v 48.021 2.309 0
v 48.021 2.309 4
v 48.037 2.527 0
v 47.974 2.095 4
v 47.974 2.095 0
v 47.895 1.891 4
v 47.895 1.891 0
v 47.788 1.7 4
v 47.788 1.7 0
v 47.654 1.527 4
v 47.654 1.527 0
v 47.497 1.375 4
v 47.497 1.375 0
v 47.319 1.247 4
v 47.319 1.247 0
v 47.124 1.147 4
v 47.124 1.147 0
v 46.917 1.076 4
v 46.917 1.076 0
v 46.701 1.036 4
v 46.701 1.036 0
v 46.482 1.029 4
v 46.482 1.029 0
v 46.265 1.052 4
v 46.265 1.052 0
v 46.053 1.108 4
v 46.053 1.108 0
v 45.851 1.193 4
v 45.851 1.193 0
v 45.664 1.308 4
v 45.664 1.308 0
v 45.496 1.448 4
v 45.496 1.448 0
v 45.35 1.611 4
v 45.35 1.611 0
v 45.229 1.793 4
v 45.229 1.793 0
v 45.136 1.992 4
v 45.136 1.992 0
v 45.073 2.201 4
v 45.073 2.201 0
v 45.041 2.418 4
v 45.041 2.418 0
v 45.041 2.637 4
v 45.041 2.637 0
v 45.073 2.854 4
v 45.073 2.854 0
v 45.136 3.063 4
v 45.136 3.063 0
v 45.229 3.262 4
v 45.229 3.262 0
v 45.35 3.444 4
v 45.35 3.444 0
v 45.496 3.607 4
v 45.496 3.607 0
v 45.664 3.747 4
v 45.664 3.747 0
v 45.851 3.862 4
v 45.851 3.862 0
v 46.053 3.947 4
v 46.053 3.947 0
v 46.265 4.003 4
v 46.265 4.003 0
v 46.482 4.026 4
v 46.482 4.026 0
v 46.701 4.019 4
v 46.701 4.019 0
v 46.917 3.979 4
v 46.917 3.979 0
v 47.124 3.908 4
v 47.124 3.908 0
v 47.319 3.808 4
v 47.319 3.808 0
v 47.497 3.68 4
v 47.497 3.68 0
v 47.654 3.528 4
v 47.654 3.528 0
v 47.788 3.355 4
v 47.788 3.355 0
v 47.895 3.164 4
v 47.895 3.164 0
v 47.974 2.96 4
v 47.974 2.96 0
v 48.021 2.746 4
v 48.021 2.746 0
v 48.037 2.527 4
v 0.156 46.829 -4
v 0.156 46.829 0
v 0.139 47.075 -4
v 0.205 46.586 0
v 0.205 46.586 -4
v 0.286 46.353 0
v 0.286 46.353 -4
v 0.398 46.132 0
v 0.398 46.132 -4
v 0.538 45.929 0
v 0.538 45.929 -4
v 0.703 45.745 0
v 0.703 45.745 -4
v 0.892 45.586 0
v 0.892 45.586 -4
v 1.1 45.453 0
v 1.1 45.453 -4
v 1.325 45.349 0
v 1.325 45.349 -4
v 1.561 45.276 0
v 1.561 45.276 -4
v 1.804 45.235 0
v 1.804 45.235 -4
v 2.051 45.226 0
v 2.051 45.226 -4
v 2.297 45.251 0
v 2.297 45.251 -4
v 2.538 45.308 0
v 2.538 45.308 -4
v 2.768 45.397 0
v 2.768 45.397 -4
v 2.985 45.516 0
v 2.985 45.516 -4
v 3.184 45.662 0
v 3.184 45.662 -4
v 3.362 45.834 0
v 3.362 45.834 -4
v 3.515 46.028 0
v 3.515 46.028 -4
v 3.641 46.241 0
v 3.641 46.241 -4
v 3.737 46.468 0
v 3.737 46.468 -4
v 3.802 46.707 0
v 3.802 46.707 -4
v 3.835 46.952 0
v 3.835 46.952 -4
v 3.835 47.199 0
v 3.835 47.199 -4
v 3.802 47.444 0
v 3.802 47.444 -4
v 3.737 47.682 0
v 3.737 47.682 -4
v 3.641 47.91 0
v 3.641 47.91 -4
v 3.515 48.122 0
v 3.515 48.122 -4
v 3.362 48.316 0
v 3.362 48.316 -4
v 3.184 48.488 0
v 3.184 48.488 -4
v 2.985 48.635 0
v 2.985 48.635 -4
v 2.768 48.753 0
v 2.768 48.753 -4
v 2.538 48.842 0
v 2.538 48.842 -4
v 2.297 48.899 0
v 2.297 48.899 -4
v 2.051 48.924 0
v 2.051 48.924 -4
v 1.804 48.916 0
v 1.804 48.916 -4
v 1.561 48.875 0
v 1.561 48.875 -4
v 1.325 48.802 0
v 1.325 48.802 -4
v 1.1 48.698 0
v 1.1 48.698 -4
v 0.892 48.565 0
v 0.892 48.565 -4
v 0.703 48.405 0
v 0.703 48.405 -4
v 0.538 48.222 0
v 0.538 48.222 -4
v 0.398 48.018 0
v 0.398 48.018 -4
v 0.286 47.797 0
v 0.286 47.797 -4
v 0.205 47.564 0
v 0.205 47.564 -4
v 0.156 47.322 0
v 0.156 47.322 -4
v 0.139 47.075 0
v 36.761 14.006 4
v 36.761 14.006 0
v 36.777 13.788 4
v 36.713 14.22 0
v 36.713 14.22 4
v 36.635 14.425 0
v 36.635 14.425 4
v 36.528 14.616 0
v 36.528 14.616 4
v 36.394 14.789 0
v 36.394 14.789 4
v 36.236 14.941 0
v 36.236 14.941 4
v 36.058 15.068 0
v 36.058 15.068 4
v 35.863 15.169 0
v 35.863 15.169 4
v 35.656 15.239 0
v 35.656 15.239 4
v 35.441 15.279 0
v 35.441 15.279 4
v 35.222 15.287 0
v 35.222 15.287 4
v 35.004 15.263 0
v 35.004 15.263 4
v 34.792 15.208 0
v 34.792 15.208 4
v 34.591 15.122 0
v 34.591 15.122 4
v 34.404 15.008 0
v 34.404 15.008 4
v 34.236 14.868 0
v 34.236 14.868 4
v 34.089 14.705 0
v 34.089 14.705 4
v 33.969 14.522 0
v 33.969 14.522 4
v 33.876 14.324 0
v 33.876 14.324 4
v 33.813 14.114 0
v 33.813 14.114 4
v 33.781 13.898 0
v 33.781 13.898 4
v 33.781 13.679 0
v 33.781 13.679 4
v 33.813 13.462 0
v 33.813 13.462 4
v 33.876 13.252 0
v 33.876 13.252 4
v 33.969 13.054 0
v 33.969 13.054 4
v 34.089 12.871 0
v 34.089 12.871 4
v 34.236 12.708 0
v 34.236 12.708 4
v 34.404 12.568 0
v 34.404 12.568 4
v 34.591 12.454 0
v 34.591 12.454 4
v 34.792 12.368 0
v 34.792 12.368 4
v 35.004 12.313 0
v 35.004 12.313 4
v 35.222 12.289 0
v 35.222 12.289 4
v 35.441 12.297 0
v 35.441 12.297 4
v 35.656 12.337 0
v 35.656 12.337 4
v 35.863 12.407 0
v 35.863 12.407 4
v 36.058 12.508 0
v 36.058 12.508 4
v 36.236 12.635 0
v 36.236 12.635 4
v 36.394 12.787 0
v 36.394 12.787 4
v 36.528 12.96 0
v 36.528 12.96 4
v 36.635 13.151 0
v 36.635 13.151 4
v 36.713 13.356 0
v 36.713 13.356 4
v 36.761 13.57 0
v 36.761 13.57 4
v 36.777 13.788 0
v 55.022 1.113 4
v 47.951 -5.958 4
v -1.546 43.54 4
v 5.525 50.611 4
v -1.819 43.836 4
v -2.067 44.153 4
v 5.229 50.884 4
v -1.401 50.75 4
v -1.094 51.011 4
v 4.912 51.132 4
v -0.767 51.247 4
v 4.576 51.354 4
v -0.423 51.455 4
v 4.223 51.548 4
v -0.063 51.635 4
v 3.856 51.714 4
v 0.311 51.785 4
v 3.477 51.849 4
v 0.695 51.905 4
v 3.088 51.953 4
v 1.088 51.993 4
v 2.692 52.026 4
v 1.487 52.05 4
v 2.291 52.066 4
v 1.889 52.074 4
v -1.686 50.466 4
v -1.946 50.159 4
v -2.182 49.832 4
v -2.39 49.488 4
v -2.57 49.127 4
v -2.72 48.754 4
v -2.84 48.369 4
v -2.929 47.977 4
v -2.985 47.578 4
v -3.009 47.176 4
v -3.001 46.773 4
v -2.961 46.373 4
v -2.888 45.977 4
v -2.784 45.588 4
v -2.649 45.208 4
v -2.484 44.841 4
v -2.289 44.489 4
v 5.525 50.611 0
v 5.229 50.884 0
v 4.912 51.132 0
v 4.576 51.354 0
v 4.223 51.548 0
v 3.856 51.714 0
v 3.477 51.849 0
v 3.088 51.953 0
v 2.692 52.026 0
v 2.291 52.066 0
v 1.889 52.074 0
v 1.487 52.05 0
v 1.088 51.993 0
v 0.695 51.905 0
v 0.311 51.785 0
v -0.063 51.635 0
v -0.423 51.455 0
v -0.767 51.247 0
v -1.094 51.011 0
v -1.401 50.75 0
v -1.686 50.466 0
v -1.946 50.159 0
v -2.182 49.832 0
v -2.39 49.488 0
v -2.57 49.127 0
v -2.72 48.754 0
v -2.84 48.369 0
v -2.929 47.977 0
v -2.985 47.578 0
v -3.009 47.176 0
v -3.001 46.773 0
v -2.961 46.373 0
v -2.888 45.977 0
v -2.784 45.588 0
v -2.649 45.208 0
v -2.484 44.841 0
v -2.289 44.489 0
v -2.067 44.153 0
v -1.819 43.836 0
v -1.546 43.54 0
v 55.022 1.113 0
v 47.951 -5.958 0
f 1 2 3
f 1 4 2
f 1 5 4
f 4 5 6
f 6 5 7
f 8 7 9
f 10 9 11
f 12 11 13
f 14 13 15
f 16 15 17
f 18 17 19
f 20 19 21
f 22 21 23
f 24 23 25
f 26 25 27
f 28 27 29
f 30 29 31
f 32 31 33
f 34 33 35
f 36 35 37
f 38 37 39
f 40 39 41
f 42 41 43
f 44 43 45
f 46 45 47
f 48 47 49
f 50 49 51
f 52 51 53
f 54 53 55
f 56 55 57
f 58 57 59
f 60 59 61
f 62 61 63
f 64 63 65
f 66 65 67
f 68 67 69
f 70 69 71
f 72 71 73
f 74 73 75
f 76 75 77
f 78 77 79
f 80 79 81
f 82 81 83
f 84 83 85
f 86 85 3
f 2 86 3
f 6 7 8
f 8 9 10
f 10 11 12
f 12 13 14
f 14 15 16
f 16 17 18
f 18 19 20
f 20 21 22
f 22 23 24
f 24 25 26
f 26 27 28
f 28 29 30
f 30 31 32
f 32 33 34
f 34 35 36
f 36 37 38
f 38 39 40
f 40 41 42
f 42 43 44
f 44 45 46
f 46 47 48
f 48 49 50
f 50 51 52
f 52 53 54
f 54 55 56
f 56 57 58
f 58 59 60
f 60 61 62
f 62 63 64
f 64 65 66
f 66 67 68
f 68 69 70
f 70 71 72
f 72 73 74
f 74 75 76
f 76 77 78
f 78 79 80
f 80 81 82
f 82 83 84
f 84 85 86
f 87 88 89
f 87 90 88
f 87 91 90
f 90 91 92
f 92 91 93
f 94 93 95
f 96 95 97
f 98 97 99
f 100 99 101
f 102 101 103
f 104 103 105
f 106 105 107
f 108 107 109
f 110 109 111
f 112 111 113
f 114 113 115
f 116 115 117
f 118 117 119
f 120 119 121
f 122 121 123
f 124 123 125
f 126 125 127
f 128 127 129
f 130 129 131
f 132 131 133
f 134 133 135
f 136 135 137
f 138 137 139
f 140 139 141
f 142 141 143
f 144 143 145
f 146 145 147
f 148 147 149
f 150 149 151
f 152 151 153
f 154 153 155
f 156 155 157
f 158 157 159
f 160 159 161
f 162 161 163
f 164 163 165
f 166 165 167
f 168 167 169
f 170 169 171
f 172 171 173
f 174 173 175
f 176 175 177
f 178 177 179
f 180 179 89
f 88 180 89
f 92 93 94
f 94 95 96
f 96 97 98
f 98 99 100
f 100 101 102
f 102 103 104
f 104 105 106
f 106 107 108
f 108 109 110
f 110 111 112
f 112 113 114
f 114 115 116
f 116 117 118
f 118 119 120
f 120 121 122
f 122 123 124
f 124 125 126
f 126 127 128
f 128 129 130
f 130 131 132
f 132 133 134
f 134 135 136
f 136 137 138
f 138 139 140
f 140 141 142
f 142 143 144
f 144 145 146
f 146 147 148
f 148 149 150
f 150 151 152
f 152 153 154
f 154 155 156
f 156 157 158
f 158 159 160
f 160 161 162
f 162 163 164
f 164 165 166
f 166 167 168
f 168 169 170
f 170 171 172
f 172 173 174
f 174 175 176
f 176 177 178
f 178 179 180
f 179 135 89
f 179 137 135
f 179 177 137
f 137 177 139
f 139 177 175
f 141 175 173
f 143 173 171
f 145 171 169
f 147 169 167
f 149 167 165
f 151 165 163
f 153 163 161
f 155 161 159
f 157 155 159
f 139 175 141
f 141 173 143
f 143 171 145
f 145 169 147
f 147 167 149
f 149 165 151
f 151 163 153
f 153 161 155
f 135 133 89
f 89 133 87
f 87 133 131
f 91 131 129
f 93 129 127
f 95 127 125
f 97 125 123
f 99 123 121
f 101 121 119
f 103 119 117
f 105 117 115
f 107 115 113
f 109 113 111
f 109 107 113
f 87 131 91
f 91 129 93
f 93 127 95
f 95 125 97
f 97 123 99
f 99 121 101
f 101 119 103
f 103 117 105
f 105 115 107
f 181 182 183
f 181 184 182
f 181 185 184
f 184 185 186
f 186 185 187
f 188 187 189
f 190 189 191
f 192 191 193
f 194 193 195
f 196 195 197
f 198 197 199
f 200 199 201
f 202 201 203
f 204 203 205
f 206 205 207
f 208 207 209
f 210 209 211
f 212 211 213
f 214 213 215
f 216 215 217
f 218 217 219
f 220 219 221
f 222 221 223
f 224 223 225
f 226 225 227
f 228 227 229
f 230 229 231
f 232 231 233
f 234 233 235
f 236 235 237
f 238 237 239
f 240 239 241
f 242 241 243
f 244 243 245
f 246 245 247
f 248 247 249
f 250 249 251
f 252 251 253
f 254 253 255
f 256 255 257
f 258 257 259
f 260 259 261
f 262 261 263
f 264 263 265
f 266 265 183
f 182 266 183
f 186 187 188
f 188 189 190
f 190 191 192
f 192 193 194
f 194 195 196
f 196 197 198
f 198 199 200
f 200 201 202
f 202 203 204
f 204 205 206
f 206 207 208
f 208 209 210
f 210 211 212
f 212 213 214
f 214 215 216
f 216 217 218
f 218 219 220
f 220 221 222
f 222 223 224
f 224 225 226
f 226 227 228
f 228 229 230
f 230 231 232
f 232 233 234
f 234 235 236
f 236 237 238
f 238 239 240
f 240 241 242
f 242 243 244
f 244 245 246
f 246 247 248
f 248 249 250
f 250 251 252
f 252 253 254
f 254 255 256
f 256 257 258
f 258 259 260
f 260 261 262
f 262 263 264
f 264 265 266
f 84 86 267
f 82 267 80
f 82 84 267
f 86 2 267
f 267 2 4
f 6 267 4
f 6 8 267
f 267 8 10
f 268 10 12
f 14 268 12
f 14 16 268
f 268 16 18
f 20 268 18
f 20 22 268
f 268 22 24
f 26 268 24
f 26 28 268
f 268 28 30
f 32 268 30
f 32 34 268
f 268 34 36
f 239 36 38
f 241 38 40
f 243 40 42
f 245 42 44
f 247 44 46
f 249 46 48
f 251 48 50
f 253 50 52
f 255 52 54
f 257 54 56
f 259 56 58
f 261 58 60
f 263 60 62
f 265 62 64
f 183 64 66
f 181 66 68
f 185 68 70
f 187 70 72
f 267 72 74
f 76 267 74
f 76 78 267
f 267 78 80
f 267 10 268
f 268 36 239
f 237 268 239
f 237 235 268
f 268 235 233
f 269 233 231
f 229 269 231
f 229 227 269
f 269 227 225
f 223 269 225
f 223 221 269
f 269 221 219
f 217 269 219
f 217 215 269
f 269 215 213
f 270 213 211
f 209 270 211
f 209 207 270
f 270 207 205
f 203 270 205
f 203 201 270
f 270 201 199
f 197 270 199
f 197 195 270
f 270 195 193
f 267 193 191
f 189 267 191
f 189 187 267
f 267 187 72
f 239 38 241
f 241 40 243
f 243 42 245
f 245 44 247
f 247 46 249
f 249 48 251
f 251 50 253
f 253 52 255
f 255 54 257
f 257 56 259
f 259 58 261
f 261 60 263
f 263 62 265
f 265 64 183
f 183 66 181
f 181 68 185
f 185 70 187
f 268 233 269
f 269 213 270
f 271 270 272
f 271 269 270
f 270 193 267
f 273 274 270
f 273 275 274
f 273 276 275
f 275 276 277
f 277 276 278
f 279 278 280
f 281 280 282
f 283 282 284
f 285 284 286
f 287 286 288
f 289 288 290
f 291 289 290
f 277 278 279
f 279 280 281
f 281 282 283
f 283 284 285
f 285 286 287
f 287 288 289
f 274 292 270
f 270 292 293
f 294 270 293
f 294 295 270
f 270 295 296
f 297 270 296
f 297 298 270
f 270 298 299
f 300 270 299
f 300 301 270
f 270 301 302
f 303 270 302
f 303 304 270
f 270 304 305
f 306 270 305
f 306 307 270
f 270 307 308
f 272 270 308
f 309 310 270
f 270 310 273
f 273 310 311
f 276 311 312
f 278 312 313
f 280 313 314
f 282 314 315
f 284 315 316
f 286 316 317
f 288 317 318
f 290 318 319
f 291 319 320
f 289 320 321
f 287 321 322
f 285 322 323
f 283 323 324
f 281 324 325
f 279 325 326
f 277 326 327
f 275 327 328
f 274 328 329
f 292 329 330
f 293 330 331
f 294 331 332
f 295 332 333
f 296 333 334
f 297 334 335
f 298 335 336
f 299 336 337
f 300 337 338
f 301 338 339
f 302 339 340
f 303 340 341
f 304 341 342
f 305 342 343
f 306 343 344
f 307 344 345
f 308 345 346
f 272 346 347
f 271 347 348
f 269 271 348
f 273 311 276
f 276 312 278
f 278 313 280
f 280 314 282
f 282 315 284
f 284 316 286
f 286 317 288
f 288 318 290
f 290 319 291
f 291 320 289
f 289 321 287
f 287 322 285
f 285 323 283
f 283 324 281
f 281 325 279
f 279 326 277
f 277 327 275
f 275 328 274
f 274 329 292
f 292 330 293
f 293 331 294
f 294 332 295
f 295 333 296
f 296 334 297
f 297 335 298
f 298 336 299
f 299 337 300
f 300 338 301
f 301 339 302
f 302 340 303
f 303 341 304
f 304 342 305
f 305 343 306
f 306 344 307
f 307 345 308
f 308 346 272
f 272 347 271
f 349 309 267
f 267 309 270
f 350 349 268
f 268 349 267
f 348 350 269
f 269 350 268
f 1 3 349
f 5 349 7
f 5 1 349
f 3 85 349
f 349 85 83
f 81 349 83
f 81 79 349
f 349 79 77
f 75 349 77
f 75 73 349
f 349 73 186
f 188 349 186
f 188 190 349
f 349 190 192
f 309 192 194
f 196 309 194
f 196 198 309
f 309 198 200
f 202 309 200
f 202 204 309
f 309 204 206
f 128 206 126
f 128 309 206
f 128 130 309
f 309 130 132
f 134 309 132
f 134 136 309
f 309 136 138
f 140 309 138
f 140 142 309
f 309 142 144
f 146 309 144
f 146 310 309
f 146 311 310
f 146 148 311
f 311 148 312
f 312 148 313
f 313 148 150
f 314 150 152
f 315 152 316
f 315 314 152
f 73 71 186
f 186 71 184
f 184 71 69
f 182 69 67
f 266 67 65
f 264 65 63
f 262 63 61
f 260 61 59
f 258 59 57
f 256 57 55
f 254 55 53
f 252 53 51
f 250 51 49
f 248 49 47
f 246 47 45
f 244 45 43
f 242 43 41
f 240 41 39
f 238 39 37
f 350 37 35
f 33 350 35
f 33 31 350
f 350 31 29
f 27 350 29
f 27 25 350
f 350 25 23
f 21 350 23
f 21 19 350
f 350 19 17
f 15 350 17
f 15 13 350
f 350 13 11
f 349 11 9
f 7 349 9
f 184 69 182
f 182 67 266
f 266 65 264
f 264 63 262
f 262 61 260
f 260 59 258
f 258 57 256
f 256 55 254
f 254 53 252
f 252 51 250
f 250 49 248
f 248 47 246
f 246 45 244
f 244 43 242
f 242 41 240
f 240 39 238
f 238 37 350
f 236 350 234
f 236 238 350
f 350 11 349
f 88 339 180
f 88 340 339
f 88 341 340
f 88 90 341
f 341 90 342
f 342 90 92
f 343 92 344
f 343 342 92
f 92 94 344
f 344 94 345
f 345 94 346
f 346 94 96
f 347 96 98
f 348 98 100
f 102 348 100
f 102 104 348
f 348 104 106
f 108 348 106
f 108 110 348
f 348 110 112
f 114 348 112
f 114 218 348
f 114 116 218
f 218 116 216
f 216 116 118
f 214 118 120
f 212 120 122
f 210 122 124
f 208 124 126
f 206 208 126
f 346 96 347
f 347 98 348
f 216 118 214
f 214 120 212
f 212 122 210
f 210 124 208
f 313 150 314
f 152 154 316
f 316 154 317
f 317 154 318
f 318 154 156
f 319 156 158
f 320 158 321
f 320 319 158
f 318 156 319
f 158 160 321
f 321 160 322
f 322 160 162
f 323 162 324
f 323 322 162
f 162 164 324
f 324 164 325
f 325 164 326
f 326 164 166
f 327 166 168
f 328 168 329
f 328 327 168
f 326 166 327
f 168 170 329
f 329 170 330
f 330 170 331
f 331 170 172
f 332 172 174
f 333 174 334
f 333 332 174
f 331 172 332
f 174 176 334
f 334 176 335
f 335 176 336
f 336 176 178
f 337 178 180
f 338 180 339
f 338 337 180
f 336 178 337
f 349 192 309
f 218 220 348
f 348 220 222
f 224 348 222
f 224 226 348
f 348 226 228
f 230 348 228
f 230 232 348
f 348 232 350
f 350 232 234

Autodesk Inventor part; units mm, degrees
ref_plane "YZ Plane" through (0, 0, 0) normal (1, 0, 0) x (0, 1, 0)
ref_plane "XZ Plane" through (0, 0, 0) normal (0, 1, 0) x (-1, 0, 0)
ref_plane "XY Plane" through (0, 0, 0) normal (0, 0, 1) x (1, 0, 0)
sketch "Sketch1" plane through (0, 0, 0) normal (0, 0, 1) x (1, 0, 0)
  circle A0 centre (1.9895, 47.0752) radius 2 projected
  line L0 (-3.9007, 3) -> (-3.9007, 30) projected
  line L1 (-3.9007, 40) -> (-3.9007, 55) projected
  circle A1 centre (1.9895, 47.0752) radius 5
  line L2 (1.9895, 47.0752) -> (-1.546, 43.5397)
  line L3 (1.9895, 47.0752) -> (6.9895, 47.0752) construction
  line L4 (1.9895, 47.0752) -> (5.525, 50.6108)
  arc A2 (1.9895, 1.5) -> (47.0122, 40) centre (1.9895, 47.0752) ccw projected
  arc A3 (1.9895, -1.5) -> (50.0467, 40) centre (1.9895, 47.0752) ccw projected
  line L5 (-1.546, 43.5397) -> (47.9514, -5.9578)
  line L6 (5.525, 50.6108) -> (55.0225, 1.1133)
  line L7 (47.9514, -5.9578) -> (55.0225, 1.1133)
  circle A4 centre (35.2767, 13.788) radius 1.5
  point P0 (0, 0)
  dimension "d0" = 10
  dimension "d1" = 135
  dimension "d3" = 10
  dimension "d4" = 3
  dimension "d5" = 5
  dimension "d6" = 70
extrude "Extrusion1" add sketch "Sketch1" along normal blind 4 contours A0 L2 L4 | A0 L4 A1 L2 | L4 L2 A0 | A0 L2 A1 L4 | L6 A2 L5 A1 | L6 A3 A4 A2 | A2 A4 A3 L5 | L6 L7 L5 A3
sketch "Sketch2" plane through (0, 0, 0) normal (0, 0, -1) x (-1, 0, 0)
  circle A0 centre (-1.9895, 47.0752) radius 2 projected
  circle A1 centre (-1.9895, 47.0752) radius 1.85
  point P0 (0, 0)
  dimension "d9" = 3.7
extrude "Extrusion2" add sketch "Sketch2" along normal blind 4 contours A1
sketch "Sketch3" plane through (0, 0, 4) normal (0, 0, 1) x (1, 0, 0)
  circle A0 centre (35.2767, 13.788) radius 1.5 projected
  arc A1 (5.525, 50.6108) -> (-1.546, 43.5397) centre (1.9895, 47.0752) ccw projected
  line L0 (-1.546, 43.5397) -> (47.9514, -5.9578) projected
  line L1 (47.9514, -5.9578) -> (55.0225, 1.1133) projected
  line L2 (55.0225, 1.1133) -> (5.525, 50.6108) projected
  circle A2 centre (46.5372, 2.5275) radius 1.5
  line L3 (35.2767, 13.788) -> (51.487, -2.4222)
  line L4 (47.9514, -5.9578) -> (55.0225, 1.1133) projected
  line L5 (55.0225, 1.1133) -> (5.525, 50.6108) projected
  point P0 (0, 0)
  dimension "d12" = 3
  dimension "d13" = 7
extrude "Extrusion3" cut sketch "Sketch3" against normal through all contours A2 L3 | L3 A2
properties part number "eye_tracker_angled_arm"
